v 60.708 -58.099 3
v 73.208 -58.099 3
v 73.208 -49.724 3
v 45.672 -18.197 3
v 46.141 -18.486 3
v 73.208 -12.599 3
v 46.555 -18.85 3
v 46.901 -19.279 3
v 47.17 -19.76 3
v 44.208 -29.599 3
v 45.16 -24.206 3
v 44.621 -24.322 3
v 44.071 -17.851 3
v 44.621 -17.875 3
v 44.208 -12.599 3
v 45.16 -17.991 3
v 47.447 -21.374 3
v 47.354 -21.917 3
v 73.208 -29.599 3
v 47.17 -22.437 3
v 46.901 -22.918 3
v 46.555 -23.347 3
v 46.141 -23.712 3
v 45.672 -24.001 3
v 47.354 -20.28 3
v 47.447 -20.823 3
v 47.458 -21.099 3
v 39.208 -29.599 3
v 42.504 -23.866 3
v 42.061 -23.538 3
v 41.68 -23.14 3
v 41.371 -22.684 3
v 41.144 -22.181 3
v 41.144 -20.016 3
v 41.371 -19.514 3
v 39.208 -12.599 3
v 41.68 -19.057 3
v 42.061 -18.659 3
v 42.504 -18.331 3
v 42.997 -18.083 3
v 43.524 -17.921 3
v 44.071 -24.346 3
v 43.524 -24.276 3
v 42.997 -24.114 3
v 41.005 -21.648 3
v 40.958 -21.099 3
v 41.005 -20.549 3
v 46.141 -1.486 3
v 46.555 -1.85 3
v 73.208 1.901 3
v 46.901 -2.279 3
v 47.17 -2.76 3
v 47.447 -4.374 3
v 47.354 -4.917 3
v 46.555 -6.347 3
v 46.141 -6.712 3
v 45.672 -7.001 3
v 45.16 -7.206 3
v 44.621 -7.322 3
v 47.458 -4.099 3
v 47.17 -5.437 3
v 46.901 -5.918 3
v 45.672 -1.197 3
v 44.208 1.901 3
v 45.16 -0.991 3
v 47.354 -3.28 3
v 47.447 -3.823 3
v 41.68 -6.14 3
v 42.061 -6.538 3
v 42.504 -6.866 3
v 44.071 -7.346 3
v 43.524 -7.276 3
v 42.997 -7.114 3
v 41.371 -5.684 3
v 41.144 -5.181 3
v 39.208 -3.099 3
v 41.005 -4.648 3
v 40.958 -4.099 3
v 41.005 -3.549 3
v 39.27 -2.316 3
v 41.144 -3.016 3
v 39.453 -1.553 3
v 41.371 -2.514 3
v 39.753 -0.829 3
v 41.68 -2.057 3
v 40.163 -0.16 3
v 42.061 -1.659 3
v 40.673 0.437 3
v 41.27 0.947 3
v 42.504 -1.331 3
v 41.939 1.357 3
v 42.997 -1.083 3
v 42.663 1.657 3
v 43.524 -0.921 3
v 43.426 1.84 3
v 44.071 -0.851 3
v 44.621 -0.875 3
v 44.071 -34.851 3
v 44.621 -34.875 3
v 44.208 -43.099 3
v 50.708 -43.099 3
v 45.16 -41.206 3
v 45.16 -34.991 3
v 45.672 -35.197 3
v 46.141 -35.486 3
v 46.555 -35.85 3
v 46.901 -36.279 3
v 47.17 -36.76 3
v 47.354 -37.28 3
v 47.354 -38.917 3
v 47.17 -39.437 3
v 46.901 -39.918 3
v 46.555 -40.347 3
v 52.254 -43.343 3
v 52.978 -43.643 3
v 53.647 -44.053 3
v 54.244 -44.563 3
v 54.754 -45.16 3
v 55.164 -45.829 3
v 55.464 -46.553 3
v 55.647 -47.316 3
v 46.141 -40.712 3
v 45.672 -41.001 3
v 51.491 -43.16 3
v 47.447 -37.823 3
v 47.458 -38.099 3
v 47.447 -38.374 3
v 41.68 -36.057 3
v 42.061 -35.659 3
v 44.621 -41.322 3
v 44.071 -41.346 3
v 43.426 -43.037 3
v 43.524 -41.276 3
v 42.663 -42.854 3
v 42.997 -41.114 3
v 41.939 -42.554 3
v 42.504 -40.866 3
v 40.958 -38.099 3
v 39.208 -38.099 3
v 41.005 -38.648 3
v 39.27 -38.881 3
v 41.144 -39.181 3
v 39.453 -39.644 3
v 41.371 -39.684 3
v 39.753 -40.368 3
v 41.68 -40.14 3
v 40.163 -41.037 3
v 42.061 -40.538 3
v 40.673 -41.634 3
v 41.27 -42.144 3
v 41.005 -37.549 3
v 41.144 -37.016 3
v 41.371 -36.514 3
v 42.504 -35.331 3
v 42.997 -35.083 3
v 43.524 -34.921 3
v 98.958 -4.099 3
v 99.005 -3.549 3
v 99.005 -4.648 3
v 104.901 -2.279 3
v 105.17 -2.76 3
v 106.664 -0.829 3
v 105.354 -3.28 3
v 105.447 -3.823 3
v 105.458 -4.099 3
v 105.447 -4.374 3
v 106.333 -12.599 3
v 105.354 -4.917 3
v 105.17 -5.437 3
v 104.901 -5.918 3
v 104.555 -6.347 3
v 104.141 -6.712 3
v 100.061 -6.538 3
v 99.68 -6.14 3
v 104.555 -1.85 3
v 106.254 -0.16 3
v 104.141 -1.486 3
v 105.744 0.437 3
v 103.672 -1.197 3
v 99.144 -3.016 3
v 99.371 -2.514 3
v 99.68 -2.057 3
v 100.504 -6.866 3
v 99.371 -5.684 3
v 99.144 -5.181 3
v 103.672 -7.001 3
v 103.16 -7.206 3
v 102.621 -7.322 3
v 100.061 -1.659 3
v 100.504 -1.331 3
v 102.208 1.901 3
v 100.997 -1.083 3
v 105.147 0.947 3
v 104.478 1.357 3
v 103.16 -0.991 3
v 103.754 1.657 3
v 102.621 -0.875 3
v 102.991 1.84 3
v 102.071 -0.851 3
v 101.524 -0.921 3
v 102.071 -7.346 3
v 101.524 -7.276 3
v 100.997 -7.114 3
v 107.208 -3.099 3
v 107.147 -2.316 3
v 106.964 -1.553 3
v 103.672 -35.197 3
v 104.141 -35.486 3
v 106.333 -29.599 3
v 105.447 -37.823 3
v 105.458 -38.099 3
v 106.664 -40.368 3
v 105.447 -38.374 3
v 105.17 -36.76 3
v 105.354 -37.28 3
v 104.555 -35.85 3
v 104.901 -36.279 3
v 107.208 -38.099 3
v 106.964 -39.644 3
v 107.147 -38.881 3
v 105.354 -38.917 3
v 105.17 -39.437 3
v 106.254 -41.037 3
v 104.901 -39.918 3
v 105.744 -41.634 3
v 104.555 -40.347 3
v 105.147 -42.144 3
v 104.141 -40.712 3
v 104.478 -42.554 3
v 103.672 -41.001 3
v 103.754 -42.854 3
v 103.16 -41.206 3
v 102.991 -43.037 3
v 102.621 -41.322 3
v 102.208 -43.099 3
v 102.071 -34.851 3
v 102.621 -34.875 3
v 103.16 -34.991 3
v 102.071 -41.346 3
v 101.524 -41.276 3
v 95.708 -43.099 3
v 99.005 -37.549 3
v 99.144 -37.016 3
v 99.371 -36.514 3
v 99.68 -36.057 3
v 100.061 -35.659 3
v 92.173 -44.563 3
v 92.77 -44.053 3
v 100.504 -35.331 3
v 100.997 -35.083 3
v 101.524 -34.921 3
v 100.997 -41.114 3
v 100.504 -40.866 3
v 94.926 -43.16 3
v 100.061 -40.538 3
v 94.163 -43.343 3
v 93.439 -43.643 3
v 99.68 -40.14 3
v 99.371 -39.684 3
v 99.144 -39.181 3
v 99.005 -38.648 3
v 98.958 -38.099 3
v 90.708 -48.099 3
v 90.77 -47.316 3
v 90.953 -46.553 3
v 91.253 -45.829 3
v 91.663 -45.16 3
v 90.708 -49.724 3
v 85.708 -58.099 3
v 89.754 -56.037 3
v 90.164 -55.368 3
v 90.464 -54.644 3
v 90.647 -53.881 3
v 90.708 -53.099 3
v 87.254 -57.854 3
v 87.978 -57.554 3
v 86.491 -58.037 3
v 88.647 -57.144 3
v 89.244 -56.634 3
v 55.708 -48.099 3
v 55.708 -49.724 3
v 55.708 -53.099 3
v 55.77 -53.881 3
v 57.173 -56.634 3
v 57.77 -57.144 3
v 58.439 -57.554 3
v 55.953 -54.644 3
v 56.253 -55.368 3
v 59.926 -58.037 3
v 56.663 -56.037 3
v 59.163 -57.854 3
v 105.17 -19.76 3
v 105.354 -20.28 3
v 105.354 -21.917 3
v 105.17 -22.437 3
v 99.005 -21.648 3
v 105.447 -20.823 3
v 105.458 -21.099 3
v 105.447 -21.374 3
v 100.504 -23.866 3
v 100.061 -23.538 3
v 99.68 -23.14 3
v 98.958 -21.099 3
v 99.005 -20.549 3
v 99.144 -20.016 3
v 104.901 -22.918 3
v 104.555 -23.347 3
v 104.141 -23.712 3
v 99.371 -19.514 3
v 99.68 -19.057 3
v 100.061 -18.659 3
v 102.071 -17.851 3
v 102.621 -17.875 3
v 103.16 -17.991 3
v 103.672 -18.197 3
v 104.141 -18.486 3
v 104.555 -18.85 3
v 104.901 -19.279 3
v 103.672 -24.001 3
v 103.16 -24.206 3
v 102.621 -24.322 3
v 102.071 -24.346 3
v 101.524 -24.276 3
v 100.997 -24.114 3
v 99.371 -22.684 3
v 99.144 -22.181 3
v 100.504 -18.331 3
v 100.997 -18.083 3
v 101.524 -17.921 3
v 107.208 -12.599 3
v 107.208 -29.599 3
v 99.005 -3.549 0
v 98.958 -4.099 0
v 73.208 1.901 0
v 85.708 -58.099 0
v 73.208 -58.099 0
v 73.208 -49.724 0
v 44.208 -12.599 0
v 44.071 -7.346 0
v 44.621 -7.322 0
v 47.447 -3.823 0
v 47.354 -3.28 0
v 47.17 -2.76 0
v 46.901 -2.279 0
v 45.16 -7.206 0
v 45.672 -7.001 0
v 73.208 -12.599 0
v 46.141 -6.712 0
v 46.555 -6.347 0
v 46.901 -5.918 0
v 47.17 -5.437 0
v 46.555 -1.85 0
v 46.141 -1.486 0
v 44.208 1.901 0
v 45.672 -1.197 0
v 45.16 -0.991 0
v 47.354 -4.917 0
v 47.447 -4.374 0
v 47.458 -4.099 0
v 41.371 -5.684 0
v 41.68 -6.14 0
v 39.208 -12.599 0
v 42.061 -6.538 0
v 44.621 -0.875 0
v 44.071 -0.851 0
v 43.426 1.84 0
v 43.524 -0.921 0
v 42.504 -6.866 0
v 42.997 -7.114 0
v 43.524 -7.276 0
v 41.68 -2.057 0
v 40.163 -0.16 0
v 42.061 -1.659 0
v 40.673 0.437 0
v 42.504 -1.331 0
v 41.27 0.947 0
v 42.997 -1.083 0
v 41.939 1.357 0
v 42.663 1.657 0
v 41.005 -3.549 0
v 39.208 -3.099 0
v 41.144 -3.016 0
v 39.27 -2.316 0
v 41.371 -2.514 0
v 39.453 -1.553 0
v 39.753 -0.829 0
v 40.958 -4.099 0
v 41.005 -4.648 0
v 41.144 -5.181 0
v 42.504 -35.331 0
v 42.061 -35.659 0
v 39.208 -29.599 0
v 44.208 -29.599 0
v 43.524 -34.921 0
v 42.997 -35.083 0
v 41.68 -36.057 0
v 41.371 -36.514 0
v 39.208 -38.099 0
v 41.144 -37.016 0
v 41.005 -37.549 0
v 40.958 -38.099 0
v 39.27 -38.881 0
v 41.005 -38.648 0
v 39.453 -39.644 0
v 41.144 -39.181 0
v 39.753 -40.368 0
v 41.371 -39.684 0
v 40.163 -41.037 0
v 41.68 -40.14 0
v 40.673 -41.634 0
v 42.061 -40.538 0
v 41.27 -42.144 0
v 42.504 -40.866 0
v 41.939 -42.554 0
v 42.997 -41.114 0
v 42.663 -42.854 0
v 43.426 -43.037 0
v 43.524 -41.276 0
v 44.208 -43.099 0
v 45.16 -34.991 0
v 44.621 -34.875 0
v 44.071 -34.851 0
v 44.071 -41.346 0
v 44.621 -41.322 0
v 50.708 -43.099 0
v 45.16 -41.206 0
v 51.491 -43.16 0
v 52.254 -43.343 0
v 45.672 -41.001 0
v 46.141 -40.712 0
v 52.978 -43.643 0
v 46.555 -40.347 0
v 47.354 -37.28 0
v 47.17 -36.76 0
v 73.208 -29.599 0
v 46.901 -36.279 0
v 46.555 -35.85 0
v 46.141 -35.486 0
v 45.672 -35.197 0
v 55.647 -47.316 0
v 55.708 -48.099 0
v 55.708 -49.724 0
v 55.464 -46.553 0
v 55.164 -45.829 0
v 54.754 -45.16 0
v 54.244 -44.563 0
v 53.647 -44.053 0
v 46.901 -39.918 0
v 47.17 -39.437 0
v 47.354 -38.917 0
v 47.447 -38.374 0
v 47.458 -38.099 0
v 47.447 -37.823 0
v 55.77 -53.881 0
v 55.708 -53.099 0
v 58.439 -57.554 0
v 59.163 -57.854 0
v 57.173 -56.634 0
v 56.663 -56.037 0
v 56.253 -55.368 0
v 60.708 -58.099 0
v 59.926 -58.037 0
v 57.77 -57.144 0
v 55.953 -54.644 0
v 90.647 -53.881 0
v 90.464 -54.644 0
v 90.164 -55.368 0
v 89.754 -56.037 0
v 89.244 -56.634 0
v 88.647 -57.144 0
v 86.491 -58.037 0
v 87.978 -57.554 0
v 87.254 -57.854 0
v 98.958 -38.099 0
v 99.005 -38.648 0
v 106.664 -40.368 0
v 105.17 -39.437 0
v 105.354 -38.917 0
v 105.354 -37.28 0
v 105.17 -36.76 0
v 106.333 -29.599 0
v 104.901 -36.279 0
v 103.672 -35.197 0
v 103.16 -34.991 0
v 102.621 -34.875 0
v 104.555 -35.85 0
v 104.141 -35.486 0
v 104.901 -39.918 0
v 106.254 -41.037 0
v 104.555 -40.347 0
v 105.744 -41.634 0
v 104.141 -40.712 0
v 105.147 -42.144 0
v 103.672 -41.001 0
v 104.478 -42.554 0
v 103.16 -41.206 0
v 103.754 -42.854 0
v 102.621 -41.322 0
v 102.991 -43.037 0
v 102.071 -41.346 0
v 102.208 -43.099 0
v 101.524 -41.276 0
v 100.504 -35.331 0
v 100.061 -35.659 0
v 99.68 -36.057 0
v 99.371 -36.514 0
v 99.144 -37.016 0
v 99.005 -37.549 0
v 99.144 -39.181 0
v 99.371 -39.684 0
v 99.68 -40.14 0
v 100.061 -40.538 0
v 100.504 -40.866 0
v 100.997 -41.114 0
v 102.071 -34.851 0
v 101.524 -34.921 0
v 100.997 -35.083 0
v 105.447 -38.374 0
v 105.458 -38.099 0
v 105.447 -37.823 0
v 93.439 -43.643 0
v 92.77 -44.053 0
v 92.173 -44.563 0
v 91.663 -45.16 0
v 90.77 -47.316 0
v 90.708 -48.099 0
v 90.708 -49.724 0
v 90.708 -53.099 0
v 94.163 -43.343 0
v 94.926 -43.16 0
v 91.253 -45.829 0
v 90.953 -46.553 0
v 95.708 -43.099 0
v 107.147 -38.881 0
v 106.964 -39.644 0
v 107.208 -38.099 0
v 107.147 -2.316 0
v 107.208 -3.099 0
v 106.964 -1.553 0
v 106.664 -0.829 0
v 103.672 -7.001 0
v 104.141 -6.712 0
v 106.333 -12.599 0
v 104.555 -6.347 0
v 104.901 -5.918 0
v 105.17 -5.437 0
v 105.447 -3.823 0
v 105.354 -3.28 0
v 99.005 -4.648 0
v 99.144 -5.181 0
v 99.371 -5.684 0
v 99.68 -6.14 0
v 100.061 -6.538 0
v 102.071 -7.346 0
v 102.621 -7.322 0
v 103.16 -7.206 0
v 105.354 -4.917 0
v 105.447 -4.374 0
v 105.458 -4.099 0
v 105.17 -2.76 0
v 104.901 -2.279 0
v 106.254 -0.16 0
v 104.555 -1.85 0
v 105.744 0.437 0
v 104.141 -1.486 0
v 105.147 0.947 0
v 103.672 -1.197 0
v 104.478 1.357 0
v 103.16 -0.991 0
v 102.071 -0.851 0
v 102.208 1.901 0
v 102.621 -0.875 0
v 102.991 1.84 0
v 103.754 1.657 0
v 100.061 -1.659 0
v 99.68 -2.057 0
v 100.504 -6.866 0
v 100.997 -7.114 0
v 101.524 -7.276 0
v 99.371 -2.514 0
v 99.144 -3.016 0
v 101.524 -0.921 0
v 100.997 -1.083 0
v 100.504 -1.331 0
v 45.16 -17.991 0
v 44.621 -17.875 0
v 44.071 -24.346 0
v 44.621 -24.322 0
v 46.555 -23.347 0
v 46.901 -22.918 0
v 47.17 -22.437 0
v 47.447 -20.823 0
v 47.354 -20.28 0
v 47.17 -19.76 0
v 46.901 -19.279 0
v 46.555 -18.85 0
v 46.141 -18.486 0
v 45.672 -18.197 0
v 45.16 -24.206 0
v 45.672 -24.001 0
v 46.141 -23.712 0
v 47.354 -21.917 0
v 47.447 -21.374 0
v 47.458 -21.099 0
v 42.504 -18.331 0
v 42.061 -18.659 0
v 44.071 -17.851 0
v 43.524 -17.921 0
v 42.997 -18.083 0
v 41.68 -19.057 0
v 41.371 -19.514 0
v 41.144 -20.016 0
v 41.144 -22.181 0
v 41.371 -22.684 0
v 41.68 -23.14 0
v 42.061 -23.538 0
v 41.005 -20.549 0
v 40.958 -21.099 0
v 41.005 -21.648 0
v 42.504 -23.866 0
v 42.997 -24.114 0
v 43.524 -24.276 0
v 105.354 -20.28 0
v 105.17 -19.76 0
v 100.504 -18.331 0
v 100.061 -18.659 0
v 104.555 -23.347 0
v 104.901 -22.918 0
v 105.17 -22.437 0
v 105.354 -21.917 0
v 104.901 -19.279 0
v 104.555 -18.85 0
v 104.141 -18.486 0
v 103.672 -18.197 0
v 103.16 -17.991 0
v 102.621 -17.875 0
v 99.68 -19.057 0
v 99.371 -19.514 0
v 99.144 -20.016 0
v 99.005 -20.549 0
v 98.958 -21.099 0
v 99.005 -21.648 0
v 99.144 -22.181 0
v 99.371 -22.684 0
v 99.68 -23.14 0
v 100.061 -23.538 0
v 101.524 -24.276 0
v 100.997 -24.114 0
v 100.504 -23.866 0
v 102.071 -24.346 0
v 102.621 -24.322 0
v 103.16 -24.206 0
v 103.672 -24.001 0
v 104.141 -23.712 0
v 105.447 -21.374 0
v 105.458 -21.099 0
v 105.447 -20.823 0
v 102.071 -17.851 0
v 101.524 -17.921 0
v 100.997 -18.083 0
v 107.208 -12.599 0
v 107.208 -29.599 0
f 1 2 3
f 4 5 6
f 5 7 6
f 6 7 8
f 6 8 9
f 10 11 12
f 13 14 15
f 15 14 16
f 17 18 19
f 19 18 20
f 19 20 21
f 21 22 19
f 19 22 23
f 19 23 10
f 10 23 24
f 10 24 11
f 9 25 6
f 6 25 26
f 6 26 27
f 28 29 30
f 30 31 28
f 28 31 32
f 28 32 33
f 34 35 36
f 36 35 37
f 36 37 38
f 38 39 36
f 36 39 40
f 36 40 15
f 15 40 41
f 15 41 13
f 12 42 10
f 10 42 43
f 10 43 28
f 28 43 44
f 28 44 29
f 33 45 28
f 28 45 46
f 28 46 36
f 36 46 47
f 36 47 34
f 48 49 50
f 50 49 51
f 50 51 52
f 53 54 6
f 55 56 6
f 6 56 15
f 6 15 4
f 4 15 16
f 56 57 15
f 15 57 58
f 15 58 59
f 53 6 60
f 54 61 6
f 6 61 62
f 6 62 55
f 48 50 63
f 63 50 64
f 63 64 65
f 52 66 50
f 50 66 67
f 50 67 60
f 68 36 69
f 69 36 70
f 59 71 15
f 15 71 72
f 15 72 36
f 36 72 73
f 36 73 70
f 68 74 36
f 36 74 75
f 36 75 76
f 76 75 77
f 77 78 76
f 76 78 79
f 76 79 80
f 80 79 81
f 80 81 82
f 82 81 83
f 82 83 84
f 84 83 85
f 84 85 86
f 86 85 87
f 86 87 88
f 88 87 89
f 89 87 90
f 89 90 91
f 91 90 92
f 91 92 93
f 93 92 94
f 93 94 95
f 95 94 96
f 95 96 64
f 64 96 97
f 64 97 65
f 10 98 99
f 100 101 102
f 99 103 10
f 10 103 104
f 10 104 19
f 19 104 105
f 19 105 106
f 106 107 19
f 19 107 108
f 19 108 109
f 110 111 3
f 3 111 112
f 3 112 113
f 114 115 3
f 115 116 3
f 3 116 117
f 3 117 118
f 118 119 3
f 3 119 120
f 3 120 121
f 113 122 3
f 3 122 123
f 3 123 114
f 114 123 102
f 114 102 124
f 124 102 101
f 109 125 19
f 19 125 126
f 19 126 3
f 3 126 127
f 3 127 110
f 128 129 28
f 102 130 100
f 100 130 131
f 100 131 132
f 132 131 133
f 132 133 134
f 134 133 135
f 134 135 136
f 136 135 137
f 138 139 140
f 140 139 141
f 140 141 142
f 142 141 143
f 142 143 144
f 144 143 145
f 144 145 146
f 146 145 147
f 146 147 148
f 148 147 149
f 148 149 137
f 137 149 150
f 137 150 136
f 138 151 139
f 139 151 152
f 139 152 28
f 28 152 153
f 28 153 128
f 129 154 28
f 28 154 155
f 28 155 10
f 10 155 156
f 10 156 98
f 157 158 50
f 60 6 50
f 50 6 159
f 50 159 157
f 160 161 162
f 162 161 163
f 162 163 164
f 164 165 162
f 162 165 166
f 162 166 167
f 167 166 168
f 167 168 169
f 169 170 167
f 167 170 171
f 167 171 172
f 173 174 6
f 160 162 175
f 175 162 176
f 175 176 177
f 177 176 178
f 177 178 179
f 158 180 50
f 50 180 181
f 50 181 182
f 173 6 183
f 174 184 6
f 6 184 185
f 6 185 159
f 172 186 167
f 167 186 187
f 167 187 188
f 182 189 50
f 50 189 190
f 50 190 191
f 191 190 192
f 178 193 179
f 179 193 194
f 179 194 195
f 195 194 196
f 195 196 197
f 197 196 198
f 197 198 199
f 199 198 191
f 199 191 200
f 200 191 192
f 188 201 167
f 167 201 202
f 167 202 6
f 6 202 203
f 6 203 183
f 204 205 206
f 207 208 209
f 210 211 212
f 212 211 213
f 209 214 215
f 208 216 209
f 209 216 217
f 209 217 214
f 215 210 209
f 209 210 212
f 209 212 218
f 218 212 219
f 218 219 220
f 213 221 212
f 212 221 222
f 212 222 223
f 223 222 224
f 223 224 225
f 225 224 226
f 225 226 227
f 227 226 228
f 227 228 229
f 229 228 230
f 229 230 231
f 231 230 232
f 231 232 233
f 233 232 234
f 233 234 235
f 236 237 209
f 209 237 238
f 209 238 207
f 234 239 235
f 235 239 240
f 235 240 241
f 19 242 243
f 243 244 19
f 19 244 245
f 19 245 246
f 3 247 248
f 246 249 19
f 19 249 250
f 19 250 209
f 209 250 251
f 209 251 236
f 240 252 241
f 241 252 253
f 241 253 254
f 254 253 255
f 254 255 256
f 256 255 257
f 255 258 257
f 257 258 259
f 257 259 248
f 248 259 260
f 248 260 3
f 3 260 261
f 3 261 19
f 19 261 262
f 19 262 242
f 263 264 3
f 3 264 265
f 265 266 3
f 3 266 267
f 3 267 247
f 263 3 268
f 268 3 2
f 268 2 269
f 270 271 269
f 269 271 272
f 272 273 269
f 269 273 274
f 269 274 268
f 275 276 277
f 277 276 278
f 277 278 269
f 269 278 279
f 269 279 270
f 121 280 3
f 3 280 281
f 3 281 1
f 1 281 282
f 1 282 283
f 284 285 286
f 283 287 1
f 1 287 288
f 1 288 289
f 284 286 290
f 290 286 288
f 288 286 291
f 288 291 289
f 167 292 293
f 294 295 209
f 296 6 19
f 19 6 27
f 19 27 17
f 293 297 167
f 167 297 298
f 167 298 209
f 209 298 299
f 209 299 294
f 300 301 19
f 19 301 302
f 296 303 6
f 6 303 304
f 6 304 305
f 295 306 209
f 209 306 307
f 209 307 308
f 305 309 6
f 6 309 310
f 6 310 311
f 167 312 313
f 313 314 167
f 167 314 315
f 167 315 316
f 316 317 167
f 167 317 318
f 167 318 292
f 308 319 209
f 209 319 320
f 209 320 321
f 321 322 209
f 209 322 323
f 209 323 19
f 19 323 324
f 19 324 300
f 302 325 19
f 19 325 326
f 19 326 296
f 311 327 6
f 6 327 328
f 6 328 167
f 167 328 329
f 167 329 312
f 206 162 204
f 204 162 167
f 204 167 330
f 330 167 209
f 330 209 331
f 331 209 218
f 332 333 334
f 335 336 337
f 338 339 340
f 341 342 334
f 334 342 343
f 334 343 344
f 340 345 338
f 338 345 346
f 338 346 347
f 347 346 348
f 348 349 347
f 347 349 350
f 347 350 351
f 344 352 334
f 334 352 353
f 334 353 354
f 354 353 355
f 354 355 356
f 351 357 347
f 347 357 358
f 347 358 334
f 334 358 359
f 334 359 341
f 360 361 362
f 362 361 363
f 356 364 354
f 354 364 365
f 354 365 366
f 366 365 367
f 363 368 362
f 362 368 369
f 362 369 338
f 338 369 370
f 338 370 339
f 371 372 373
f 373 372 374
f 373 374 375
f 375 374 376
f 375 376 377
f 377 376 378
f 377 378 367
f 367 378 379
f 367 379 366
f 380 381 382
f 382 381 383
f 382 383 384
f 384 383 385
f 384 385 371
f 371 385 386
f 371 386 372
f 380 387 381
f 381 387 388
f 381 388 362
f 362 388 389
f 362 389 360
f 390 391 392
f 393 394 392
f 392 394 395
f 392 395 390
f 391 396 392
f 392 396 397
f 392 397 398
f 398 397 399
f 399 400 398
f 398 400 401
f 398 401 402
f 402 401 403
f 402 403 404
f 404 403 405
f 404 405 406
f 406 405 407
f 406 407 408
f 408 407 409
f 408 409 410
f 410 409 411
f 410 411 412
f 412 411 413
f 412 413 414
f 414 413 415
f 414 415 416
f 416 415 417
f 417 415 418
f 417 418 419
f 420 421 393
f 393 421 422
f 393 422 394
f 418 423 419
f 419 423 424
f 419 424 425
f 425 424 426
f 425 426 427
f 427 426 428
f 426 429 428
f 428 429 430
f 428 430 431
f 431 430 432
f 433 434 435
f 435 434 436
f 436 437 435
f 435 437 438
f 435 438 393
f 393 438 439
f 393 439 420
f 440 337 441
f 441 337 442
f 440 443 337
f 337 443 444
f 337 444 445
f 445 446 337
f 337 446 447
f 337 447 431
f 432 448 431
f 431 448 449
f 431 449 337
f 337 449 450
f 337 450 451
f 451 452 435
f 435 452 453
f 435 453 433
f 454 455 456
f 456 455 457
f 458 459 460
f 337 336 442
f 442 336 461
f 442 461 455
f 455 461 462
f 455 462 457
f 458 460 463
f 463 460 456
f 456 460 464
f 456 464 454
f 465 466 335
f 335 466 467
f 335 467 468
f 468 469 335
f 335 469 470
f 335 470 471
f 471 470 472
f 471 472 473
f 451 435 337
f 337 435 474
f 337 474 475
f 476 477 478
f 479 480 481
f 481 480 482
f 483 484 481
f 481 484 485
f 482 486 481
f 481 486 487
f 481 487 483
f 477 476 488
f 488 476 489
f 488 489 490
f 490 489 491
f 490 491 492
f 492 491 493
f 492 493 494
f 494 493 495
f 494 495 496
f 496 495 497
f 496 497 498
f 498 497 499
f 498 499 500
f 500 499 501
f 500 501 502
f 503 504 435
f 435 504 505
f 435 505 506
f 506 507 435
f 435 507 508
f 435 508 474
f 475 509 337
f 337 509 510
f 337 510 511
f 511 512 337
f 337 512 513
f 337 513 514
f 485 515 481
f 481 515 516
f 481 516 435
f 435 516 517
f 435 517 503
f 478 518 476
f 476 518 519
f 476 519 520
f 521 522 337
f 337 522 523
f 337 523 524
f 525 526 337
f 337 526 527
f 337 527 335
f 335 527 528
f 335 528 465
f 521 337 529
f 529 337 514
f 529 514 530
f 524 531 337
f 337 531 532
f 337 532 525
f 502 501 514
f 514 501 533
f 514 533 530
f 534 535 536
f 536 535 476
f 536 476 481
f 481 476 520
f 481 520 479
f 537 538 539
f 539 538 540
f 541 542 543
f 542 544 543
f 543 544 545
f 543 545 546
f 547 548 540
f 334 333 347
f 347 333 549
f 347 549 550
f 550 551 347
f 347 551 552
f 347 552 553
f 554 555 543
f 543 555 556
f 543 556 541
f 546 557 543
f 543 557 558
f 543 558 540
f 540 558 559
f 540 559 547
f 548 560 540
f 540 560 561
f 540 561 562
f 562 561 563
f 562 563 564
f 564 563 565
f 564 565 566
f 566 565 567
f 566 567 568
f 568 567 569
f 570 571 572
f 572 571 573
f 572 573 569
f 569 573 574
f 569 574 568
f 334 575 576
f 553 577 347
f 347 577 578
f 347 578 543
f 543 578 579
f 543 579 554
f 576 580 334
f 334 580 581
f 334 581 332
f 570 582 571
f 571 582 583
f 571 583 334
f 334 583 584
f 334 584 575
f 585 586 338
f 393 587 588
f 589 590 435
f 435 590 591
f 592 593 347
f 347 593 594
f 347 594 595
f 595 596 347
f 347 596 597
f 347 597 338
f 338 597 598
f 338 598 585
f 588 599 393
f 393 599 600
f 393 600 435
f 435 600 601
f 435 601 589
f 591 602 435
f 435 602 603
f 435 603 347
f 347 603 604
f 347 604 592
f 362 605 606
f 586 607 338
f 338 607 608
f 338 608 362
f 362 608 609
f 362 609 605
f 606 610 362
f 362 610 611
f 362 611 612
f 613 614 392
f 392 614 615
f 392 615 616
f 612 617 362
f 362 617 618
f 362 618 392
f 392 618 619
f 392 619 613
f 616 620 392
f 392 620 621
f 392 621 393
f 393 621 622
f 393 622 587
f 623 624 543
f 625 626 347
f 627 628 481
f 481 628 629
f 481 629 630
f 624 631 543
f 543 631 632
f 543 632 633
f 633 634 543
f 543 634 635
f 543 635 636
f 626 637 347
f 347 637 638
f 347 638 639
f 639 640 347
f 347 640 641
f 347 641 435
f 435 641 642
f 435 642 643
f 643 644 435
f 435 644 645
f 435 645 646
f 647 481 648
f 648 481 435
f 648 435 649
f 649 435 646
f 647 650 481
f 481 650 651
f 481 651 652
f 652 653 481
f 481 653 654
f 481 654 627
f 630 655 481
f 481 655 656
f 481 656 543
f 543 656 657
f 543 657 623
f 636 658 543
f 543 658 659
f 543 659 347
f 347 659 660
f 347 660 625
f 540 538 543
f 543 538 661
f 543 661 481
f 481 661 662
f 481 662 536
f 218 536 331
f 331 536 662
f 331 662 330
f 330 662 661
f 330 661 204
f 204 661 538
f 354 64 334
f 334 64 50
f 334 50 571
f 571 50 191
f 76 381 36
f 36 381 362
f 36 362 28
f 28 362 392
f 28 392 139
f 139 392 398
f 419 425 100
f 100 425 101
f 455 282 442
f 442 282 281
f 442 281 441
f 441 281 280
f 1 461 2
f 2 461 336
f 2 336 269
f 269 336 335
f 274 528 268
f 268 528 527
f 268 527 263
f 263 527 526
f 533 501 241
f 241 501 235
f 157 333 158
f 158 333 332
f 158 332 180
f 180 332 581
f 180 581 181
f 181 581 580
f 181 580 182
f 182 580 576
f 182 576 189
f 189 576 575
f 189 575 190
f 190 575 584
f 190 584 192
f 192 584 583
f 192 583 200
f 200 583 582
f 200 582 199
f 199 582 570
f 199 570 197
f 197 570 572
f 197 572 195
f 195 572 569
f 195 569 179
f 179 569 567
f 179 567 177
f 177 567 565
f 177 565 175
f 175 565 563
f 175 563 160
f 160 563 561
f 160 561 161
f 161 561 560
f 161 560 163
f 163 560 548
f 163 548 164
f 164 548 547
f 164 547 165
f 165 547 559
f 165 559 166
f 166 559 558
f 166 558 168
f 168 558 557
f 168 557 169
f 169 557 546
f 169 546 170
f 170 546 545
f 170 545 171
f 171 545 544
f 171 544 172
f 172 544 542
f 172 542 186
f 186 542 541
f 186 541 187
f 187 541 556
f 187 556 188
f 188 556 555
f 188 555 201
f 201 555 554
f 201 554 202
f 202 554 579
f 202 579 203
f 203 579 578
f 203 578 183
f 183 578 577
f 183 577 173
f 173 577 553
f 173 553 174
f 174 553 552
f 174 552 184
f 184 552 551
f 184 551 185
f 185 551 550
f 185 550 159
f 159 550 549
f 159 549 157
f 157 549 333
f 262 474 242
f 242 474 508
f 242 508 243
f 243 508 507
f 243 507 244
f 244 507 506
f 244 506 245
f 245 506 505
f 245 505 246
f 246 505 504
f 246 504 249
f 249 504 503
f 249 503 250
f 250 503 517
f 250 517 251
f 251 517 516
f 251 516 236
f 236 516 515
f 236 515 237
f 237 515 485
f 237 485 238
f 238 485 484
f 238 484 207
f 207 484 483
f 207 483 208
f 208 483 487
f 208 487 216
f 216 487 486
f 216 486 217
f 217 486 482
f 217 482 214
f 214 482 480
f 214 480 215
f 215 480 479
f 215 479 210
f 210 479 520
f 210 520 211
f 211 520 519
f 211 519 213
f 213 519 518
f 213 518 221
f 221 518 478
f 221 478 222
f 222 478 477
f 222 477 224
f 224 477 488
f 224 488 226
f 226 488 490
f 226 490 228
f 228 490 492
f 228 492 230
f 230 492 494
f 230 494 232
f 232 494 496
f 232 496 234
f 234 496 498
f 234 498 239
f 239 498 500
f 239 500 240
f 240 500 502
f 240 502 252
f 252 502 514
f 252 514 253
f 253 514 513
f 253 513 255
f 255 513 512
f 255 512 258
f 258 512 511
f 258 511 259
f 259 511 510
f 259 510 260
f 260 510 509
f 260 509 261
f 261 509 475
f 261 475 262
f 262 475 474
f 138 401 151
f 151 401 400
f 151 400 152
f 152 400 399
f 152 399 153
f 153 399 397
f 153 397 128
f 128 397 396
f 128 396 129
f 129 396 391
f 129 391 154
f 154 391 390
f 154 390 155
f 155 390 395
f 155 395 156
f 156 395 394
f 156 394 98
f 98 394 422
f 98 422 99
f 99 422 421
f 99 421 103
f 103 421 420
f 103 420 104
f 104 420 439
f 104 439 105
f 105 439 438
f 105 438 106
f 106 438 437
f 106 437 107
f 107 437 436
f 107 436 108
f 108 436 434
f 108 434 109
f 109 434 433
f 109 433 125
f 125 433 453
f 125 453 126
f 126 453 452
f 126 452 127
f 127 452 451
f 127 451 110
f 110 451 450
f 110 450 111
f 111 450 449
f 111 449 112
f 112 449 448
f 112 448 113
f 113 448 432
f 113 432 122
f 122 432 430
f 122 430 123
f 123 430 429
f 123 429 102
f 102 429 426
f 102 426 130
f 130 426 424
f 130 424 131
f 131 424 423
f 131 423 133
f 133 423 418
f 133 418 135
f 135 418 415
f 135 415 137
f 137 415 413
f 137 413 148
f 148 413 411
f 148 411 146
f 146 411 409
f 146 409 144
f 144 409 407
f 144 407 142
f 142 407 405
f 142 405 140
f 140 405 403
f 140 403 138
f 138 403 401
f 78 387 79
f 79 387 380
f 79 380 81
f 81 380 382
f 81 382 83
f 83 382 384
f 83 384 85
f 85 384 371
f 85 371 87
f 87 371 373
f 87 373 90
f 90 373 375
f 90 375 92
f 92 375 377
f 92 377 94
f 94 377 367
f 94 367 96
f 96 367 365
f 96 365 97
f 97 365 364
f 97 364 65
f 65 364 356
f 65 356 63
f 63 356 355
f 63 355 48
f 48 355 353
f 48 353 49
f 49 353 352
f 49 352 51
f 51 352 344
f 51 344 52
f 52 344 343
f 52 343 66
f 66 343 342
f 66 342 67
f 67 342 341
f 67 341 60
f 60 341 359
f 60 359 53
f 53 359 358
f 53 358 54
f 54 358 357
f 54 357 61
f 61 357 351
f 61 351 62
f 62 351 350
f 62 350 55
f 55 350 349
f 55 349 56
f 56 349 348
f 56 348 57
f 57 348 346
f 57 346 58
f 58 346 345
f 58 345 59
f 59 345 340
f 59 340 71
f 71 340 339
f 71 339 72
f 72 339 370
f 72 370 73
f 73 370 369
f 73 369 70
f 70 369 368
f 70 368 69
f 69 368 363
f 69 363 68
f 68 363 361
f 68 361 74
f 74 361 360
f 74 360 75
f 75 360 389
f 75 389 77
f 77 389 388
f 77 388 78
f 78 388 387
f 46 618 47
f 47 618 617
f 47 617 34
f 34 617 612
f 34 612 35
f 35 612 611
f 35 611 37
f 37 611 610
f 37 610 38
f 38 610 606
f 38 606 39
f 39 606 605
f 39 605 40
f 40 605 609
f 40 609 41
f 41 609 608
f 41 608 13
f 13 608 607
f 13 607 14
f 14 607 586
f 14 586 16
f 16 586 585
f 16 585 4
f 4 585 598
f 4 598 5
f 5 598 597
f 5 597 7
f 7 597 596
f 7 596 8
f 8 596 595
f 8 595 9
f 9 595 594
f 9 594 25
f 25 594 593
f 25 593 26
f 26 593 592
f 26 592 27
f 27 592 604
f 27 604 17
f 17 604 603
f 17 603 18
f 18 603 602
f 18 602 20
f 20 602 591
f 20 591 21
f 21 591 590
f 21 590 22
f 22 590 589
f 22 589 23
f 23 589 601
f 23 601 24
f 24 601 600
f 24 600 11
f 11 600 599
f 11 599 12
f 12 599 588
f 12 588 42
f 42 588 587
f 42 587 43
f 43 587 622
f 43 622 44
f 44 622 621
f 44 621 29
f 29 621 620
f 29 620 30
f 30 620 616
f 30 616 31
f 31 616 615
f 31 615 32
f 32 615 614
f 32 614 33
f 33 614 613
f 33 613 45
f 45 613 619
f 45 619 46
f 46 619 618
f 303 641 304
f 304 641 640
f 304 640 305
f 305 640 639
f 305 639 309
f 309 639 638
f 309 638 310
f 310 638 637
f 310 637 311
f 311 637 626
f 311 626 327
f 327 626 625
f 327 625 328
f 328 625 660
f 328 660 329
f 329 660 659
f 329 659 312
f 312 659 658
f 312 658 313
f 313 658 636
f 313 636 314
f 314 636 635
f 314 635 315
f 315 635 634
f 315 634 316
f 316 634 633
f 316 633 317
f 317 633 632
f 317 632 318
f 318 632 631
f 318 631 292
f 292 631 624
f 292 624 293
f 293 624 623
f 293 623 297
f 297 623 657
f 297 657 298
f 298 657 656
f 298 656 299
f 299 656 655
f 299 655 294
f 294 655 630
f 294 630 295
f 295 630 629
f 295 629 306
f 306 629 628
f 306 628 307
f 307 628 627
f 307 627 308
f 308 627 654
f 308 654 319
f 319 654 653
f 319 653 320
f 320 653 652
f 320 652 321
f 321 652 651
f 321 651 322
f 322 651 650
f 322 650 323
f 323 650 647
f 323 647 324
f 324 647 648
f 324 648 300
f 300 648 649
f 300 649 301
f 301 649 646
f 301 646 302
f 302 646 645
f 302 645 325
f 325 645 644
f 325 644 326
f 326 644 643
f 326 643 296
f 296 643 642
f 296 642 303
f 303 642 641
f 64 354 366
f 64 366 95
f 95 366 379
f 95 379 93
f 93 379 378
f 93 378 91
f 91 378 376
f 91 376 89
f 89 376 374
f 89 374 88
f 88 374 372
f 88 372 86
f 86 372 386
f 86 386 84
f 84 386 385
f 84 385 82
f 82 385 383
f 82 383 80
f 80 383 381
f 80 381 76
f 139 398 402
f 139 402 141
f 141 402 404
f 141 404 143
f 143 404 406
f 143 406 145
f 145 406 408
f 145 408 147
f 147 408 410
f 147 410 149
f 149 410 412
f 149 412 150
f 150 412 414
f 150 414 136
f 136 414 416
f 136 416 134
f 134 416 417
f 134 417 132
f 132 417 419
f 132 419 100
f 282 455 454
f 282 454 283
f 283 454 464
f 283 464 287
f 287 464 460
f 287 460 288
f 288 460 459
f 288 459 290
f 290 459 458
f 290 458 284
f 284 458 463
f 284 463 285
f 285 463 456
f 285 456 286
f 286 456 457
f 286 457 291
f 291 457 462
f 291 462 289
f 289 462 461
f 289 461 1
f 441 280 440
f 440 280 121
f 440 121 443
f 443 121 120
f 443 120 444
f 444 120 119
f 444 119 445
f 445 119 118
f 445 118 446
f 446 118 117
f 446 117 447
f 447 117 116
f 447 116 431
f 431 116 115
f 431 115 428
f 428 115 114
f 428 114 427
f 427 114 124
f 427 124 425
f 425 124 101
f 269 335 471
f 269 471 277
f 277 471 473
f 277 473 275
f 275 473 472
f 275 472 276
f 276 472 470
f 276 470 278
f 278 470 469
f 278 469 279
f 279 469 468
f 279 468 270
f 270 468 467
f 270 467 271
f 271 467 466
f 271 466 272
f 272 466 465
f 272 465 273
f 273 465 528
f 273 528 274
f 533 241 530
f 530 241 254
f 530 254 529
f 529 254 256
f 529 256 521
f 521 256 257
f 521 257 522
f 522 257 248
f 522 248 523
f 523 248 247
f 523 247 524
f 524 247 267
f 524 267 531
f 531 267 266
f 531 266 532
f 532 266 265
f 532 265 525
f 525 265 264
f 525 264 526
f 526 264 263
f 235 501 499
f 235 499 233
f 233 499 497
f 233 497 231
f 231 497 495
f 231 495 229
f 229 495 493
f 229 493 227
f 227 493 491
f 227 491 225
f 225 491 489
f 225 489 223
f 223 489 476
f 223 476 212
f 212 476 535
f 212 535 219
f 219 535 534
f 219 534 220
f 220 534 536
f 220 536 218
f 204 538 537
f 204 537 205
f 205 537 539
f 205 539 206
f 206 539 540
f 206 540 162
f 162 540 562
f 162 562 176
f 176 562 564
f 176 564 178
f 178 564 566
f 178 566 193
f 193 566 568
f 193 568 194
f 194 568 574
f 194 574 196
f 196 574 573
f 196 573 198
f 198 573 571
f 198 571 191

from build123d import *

# Parameters (mm, degrees)
ESQUISSE2_R        = 3.25
BOSS_EXTRU_1_DEPTH = 3
CONG_1_R           = 5


with BuildPart() as part:
    # Esquisse2 → Boss.-Extru.1 (new body)
    with BuildSketch(Plane.XY):
        Polygon((107.208492459, 1.901473412), (39.208492459, 1.901473412), (39.208492459, -43.098526588), (55.708492459, -43.098526588), (55.708492459, -58.098526588), (90.708492459, -58.098526588), (90.708492459, -43.098526588), (107.208492459, -43.098526588), align=None)
        with Locations((102.208492459, -4.098526588)):
            Circle(ESQUISSE2_R, mode=Mode.SUBTRACT)
        with Locations((102.208492459, -38.098526588)):
            Circle(ESQUISSE2_R, mode=Mode.SUBTRACT)
        with Locations((44.208492459, -38.098526588)):
            Circle(ESQUISSE2_R, mode=Mode.SUBTRACT)
        with Locations((44.208492459, -4.098526588)):
            Circle(ESQUISSE2_R, mode=Mode.SUBTRACT)
        with Locations((44.208492459, -21.098526588)):
            Circle(ESQUISSE2_R, mode=Mode.SUBTRACT)
        with Locations((102.208492459, -21.098526588)):
            Circle(ESQUISSE2_R, mode=Mode.SUBTRACT)
    extrude(amount=BOSS_EXTRU_1_DEPTH)

    # Congé1
    cong_1_edges = [part.edges().sort_by_distance(p)[0] for p in [
        (107.208492459, -43.098526588, 1.5),
        (90.708492459, -43.098526588, 1.5),
        (90.708492459, -58.098526588, 1.5),
        (55.708492459, -58.098526588, 1.5),
        (55.708492459, -43.098526588, 1.5),
        (39.208492459, -43.098526588, 1.5),
        (39.208492459, 1.901473412, 1.5),
        (107.208492459, 1.901473412, 1.5),
    ]]
    fillet(cong_1_edges, radius=CONG_1_R)


solid = part.part
